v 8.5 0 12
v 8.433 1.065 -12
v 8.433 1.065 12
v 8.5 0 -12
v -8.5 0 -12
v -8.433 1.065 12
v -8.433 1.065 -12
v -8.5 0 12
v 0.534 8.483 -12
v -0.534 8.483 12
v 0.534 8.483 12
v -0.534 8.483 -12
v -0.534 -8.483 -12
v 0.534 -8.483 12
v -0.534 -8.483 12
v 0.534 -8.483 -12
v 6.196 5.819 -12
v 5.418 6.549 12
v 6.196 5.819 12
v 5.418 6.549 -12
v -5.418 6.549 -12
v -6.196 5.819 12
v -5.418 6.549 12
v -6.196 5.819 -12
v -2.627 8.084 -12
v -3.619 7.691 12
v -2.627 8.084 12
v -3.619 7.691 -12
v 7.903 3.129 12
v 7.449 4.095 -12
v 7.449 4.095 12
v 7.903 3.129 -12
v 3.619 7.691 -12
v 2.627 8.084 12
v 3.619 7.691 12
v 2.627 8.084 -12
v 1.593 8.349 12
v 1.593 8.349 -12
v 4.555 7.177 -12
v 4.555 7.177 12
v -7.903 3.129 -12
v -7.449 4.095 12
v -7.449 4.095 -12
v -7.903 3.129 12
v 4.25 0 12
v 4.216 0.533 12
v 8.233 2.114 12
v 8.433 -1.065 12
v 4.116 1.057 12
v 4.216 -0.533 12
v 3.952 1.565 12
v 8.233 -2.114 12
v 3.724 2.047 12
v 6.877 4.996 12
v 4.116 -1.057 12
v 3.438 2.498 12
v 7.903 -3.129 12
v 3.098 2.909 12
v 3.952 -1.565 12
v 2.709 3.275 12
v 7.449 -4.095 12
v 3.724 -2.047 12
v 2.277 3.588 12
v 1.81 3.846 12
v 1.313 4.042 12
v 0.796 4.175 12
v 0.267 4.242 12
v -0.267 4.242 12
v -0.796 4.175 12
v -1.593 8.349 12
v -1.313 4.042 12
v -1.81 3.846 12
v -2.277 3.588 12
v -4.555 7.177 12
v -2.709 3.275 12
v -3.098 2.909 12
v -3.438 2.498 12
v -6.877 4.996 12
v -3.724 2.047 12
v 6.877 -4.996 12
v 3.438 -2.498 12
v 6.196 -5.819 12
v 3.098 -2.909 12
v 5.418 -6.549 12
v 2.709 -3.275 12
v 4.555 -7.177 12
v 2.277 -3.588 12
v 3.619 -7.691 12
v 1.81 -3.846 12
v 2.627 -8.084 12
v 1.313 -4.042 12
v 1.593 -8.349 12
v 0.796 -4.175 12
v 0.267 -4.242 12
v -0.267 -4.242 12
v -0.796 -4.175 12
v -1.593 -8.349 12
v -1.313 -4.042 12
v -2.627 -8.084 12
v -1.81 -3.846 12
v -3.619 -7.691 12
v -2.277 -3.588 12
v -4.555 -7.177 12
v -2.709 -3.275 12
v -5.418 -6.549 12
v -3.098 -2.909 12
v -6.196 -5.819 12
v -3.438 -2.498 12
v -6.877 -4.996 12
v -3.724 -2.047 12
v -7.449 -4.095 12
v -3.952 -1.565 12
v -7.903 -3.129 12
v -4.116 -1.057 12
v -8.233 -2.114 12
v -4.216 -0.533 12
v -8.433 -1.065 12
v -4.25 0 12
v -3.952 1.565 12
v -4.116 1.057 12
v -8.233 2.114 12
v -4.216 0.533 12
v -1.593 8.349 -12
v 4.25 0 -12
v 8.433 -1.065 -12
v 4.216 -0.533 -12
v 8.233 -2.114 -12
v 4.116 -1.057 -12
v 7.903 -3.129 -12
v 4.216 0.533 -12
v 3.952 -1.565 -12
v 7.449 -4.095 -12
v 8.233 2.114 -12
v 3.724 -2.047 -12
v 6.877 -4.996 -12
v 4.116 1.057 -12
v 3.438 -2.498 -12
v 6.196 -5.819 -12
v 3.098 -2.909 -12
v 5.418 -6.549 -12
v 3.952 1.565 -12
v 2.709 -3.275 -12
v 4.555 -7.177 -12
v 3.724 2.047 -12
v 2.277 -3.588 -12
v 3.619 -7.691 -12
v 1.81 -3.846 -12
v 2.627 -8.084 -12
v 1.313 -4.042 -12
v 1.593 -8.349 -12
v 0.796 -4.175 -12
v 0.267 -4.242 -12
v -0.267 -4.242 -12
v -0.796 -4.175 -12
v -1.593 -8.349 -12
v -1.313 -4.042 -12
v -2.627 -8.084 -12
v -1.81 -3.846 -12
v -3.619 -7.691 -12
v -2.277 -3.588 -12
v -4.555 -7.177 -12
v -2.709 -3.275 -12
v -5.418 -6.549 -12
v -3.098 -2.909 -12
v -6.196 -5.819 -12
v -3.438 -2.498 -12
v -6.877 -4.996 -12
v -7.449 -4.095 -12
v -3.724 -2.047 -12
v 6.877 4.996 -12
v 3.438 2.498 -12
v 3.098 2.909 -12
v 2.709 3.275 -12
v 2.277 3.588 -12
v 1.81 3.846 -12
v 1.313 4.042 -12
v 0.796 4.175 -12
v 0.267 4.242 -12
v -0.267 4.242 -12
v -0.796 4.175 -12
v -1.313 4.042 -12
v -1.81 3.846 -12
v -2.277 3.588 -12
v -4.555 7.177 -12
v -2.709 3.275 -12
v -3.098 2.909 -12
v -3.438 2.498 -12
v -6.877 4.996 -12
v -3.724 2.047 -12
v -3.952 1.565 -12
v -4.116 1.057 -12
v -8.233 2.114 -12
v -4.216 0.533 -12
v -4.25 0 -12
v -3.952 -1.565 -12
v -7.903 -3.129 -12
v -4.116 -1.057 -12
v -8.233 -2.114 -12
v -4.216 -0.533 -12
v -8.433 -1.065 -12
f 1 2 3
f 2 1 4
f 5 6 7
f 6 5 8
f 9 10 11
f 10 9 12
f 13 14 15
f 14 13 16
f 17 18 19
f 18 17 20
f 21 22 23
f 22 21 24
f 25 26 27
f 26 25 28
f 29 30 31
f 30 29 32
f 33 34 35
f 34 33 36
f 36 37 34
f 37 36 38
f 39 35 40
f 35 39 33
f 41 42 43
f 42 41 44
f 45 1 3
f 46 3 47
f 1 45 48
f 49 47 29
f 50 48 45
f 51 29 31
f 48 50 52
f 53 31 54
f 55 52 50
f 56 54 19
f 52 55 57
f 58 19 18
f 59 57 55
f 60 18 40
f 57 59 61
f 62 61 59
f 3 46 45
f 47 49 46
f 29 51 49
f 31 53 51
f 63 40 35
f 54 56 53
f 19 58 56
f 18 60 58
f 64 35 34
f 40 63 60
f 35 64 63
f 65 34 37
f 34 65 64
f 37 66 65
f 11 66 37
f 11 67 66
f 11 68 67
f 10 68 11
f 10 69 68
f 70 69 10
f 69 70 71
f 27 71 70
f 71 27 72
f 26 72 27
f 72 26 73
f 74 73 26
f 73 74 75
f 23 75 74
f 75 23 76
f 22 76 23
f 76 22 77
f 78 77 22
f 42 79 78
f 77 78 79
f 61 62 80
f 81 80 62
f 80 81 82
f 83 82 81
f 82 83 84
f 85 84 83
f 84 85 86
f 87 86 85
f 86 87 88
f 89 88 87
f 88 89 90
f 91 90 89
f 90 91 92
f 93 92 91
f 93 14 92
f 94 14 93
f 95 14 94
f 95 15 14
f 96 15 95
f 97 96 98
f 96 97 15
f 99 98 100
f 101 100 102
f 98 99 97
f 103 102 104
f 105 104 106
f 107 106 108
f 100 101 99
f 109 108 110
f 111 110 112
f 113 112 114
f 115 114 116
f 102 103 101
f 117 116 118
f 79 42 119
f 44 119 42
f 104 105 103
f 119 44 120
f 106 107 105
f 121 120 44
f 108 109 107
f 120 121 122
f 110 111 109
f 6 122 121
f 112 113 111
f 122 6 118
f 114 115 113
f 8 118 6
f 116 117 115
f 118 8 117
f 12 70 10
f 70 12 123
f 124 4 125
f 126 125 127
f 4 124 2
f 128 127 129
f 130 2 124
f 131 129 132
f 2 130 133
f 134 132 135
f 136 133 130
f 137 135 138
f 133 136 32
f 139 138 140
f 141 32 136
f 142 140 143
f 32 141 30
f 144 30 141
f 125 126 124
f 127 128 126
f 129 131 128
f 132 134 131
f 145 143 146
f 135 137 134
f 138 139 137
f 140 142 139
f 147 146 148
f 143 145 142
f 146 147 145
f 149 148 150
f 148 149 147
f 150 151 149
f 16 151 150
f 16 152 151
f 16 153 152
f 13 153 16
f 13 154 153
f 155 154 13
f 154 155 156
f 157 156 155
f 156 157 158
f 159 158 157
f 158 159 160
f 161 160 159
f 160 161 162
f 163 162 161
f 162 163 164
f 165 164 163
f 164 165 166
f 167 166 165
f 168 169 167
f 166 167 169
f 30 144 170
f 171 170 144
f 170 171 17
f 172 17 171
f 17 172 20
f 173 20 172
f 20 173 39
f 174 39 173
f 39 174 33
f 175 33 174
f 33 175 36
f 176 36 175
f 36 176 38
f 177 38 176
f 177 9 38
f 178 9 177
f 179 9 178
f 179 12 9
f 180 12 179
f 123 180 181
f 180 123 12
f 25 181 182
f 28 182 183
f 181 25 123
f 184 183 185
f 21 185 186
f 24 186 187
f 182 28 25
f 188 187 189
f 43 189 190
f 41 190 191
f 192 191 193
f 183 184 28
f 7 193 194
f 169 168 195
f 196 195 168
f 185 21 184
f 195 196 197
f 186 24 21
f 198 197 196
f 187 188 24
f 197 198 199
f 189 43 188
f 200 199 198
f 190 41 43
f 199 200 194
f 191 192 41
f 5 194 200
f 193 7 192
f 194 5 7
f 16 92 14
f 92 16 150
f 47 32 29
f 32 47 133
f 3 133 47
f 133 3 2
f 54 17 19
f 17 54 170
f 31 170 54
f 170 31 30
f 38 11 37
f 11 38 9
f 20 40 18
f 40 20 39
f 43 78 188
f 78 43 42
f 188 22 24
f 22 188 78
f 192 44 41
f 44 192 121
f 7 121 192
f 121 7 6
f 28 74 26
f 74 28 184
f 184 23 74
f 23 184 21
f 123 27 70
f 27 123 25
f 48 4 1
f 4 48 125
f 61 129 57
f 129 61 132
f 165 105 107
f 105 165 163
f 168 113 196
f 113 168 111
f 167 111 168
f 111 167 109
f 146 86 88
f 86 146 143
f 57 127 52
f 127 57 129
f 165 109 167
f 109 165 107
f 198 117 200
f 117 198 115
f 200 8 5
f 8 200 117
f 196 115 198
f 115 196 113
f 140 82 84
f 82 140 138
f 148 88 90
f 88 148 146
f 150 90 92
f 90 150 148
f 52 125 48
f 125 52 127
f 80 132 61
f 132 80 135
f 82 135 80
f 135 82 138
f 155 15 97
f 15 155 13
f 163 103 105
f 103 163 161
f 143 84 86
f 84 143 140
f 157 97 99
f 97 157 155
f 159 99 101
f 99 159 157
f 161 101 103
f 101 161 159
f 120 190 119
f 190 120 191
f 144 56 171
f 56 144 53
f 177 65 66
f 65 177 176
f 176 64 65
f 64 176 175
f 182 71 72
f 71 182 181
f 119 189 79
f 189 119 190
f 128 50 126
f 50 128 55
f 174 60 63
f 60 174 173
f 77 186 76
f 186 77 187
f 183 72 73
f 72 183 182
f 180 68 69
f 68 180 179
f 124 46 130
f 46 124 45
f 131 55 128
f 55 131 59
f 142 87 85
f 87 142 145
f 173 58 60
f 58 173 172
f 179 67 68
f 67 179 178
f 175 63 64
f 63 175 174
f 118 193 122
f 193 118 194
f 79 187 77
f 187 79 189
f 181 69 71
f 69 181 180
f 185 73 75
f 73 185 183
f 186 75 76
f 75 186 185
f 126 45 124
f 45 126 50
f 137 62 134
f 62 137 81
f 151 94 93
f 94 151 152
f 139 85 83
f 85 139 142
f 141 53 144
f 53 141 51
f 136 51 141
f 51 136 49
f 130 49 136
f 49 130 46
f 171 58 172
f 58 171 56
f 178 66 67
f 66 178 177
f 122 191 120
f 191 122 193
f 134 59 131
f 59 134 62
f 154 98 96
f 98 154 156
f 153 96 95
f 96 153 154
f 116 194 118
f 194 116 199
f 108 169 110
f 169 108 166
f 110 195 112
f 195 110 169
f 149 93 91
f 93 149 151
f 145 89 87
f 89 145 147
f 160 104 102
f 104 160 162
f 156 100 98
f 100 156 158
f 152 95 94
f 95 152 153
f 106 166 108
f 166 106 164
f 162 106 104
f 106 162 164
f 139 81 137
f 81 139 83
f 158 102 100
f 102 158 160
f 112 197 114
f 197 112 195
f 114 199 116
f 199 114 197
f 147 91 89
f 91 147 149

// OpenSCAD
$fn = 50;


difference() {
	union() {
		translate(v = [0, 0, -12.0000000000]) {
			cylinder(h = 24, r = 8.5000000000);
		}
	}
	union() {
		translate(v = [0, 0, -100.0000000000]) {
			cylinder(h = 200, r = 4.2500000000);
		}
	}
}
